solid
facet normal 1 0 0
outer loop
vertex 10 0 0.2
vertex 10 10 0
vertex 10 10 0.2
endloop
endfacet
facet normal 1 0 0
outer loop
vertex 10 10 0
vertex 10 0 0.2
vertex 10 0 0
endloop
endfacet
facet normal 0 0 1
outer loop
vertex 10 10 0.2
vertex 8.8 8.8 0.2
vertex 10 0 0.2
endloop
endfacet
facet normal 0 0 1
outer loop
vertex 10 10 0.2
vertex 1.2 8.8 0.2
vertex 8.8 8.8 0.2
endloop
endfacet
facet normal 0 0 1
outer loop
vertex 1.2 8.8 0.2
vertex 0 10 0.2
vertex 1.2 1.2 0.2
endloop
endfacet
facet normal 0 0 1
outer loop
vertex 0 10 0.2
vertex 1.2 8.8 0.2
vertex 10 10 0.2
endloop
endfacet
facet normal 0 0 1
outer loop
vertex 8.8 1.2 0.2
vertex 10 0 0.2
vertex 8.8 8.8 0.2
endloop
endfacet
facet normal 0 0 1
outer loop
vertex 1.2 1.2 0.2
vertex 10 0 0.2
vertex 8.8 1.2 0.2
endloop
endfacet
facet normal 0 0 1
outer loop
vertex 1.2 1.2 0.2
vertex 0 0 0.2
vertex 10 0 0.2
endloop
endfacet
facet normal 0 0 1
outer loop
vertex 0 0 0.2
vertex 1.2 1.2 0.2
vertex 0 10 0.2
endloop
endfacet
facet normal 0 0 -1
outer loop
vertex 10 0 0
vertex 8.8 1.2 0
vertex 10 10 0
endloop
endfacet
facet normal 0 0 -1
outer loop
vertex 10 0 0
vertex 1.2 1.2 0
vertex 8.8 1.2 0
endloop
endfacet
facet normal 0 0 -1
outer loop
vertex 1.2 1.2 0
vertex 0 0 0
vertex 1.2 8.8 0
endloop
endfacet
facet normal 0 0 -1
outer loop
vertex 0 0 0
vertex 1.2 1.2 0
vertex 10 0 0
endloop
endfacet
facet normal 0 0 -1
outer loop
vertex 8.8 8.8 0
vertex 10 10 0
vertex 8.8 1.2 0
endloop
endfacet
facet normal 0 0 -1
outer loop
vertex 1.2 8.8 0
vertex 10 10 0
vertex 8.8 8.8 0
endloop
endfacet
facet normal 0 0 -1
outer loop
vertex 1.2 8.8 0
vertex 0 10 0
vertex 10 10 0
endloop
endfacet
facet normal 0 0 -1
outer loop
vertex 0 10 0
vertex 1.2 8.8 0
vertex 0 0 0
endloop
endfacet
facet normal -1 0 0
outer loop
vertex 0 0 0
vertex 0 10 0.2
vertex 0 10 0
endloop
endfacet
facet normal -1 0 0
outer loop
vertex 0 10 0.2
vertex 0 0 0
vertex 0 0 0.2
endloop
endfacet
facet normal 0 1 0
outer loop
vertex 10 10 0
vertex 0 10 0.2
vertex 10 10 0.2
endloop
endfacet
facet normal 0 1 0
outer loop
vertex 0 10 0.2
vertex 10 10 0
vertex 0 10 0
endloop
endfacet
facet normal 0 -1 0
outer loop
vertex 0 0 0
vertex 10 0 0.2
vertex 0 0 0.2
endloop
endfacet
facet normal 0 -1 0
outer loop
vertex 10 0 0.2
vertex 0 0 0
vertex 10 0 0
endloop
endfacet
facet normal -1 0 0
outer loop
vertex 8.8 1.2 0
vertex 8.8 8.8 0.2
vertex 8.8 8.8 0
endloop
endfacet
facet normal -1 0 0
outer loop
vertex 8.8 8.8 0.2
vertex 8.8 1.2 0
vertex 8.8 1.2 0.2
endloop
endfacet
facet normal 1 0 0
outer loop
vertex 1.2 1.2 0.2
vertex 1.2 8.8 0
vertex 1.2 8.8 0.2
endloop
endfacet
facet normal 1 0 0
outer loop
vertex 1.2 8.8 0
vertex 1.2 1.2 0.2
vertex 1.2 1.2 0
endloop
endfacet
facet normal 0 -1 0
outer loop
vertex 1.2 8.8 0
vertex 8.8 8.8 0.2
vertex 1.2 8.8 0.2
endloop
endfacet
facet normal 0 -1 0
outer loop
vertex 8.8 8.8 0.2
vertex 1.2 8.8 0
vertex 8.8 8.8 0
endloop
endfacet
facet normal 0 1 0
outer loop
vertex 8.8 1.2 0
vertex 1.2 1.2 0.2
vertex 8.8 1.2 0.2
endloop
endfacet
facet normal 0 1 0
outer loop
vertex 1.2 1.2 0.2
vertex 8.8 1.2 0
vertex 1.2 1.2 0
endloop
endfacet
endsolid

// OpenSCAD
// test square for understanding GCODE
//
// openscad -o test/square_test.stl test/square_test.scad

$fs = 0.1;
$fn = 60;

module square_unfilled(layer_height, nozzle_diameter, length, thickness) {
    printer_thickness = nozzle_diameter * thickness;
    center_cut = length - (2 * printer_thickness);

    difference() {
        cube(size=[length, length, layer_height]);

        translate([printer_thickness, printer_thickness, 0])
            cube(size=[center_cut, center_cut, layer_height]);
    }
}

square_unfilled(0.2, 0.4, 10, 3);
